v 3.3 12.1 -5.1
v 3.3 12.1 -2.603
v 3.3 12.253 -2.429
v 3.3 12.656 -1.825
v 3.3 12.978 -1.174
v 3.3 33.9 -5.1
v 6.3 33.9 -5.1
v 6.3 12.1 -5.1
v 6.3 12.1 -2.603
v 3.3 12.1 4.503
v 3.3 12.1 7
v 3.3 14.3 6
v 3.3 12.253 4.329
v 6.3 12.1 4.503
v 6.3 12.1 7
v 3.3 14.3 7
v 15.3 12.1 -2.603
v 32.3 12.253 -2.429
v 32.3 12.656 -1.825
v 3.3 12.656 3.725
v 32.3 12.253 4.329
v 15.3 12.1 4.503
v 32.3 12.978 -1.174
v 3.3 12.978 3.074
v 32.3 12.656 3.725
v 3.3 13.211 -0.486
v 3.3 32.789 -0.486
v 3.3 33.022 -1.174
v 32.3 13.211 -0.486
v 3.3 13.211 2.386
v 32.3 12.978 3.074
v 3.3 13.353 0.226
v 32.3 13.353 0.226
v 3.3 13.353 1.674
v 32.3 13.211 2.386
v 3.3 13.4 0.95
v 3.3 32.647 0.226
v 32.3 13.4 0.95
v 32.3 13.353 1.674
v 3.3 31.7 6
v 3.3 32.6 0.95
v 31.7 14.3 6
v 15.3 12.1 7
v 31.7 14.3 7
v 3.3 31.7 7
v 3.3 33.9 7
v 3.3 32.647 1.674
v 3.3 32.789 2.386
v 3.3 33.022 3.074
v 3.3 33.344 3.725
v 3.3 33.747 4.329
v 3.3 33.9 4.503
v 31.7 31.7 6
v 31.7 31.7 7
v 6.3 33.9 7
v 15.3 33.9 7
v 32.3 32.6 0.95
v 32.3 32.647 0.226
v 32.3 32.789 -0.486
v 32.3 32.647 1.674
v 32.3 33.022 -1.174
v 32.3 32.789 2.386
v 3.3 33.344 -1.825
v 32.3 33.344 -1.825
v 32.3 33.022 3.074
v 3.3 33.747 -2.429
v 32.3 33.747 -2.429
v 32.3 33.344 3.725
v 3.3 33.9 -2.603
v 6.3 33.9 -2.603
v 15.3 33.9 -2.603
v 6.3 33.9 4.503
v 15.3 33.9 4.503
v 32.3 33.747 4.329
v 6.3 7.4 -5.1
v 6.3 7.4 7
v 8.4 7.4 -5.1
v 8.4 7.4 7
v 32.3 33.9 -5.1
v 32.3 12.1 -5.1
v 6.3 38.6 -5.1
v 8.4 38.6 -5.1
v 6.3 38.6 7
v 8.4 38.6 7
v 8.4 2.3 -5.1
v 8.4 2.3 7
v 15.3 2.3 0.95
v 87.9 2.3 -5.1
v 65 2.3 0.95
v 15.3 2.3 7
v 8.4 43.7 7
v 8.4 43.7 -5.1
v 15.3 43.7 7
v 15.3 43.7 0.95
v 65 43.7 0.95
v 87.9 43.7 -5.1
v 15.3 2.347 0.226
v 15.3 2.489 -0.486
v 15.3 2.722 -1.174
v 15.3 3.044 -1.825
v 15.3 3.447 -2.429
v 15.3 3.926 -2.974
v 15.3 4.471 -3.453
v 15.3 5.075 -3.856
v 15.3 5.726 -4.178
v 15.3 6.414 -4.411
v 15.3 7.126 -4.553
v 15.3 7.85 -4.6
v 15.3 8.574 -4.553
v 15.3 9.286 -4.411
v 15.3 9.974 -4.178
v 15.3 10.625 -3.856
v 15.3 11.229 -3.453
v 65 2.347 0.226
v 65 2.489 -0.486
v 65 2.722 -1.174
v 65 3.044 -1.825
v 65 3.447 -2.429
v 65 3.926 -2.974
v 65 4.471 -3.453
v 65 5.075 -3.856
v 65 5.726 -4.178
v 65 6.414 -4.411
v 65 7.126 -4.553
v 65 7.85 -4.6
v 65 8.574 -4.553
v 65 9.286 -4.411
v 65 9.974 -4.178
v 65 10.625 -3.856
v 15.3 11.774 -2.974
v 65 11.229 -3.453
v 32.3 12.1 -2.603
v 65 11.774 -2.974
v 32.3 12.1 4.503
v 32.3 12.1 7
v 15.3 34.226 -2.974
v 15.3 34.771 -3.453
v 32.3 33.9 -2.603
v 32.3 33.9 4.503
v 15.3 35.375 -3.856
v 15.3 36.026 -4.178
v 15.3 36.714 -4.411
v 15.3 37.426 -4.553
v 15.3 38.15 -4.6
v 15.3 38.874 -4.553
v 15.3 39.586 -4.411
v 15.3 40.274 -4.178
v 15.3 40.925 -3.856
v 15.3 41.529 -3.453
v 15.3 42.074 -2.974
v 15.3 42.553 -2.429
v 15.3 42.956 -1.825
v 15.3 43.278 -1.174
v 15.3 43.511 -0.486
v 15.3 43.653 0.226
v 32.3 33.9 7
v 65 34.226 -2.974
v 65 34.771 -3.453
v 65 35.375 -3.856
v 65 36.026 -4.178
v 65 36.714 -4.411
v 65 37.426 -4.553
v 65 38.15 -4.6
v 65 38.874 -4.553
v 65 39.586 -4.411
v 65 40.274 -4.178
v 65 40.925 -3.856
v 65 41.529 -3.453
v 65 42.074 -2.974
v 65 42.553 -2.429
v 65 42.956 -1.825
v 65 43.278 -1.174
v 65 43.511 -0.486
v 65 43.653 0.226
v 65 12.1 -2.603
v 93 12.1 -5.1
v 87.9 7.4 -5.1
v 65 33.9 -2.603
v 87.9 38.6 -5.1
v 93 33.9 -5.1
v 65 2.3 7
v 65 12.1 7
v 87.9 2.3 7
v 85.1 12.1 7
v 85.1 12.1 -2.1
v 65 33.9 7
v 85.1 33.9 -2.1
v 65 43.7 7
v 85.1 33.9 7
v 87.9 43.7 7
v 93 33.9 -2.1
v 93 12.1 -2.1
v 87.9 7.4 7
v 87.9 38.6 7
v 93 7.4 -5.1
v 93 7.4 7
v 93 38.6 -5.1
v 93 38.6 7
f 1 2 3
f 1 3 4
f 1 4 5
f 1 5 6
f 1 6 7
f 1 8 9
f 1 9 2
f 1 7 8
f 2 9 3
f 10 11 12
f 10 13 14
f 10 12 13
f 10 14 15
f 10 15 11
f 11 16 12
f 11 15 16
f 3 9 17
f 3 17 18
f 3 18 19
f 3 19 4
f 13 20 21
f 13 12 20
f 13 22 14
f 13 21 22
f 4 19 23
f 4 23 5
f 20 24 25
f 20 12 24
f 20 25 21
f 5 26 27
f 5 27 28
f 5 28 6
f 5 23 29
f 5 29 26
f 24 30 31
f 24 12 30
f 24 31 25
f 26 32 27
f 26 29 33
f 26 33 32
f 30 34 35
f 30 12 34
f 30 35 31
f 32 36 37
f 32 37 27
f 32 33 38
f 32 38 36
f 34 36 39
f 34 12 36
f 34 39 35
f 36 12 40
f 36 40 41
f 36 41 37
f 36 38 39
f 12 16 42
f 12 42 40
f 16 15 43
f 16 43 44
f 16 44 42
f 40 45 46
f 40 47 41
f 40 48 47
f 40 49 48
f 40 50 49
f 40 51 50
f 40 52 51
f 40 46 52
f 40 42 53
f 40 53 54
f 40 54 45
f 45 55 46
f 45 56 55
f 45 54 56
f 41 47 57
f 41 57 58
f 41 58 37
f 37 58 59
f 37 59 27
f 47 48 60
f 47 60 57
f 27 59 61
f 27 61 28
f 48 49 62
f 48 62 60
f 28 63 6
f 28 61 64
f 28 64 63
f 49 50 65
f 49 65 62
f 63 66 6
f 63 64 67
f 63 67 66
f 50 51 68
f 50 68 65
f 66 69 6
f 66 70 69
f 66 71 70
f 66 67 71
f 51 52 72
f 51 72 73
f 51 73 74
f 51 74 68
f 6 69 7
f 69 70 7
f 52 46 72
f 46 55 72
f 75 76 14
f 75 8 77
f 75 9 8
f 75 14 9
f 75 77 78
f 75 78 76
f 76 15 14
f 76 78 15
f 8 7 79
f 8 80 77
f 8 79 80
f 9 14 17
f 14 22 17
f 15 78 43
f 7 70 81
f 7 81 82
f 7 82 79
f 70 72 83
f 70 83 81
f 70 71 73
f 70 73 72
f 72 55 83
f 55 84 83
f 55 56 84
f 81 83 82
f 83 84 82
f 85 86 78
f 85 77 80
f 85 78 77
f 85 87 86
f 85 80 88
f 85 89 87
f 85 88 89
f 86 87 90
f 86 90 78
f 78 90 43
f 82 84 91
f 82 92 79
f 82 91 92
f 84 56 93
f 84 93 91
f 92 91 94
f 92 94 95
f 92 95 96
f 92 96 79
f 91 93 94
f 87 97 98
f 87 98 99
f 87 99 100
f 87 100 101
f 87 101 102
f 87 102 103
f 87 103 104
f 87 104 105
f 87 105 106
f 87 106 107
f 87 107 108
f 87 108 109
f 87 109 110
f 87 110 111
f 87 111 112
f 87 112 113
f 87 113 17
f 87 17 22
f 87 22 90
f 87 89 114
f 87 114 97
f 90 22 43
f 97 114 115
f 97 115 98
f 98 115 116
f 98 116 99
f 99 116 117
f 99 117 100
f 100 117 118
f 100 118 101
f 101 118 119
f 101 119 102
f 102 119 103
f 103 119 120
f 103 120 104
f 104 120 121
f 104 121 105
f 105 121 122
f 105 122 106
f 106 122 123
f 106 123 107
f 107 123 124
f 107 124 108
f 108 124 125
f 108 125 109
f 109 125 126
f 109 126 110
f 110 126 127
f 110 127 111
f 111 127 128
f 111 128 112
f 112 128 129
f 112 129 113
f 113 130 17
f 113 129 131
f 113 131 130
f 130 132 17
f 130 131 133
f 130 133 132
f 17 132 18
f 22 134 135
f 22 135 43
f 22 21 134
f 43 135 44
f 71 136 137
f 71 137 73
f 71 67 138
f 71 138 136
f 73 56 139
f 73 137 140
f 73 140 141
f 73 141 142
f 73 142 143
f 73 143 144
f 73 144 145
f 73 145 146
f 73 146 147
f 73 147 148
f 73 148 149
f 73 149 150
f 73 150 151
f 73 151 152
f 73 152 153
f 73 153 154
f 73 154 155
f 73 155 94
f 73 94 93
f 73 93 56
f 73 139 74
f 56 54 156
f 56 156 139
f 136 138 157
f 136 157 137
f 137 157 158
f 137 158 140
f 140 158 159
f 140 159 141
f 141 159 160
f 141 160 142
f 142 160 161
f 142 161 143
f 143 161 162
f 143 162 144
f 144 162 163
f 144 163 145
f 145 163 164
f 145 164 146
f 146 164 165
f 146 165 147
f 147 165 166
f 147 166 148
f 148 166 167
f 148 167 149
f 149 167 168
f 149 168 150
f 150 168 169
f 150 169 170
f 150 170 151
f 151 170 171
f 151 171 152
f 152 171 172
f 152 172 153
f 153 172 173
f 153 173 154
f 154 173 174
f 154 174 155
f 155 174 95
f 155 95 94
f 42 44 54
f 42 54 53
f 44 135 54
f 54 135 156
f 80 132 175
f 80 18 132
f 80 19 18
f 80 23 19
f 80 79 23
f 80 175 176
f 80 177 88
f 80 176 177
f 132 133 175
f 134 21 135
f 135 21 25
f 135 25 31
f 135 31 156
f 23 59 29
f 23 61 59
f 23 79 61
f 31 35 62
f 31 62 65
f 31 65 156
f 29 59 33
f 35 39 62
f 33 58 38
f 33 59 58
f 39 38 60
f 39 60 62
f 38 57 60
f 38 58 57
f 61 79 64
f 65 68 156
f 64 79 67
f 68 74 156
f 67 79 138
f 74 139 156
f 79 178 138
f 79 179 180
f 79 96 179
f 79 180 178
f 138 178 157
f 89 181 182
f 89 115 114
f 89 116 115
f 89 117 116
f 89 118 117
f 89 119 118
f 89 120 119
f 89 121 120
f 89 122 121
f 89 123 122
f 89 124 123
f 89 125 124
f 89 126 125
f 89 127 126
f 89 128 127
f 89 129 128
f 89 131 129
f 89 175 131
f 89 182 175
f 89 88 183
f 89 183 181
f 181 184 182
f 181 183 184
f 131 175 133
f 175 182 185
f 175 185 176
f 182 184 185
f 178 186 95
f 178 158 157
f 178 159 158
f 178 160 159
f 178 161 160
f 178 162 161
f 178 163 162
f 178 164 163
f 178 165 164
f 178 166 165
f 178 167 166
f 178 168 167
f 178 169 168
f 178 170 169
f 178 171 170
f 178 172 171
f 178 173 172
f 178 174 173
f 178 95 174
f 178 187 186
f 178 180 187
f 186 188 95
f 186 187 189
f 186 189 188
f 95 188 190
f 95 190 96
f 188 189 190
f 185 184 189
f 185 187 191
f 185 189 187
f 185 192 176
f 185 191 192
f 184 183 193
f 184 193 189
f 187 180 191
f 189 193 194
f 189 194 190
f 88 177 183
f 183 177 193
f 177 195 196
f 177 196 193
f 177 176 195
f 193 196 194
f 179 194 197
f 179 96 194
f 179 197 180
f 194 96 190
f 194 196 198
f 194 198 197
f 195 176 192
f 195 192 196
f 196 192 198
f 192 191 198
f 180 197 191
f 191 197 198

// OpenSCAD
// Dilder Rev 2 "extended with joystick" — AAA CRADLE INSERT v2
//
// Based on the 04-24 v1 cradle insert, extended to fit the 94.5 mm wide
// enclosure (+3 mm on -X for TP4056 charge board).
//
// Changes from v1:
//   - enclosure_outer_width_along_x_axis_mm: 91.5 → 94.5
//   - Connecting block extended to 29 mm X / full plug height for TP4056
//   - 1 mm TP4056 indent on the connecting block's top face
//   - Concave battery-following arcs on the connecting block's ±Y faces
//   - +X display connector cutout (3 mm from bottom face)
//   - No USB-C port cutout (board accessible from the open Pico nest)
//
// Export:
//   openscad -o aaa-cradle-insert-v1.3mf aaa-cradle-insert-v1.scad

$fn = 48;

// ============================================================
// Match the cover / base shell parameters
// ============================================================
enclosure_outer_width_along_x_axis_mm          = 94.5;   // was 91.5 — +3 mm on -X side for TP4056
enclosure_outer_depth_along_y_axis_mm          = 46;
minus_x_end_wall_thickness_mm                  = 3.0;
plus_x_end_wall_thickness_mm                   = 1.2;
perimeter_long_side_wall_thickness_y_mm_base   = 2;
corner_pillar_square_side_length_mm            = 5;

// Cover cavity inner bounds (the space the plug fills)
cavity_inner_x_start_mm = minus_x_end_wall_thickness_mm;                         // = 3.0
cavity_inner_x_end_mm =
    enclosure_outer_width_along_x_axis_mm
      - plus_x_end_wall_thickness_mm;                                            // = 93.3
cavity_inner_y_start_mm = perimeter_long_side_wall_thickness_y_mm_base;          // = 2.0
cavity_inner_y_end_mm =
    enclosure_outer_depth_along_y_axis_mm
      - perimeter_long_side_wall_thickness_y_mm_base;                            // = 44.0

// Plug outer footprint = cavity − a tiny slide-in slop on every wall.
plug_wall_slop_mm                              = 0.3;
plug_x_start_mm = cavity_inner_x_start_mm + plug_wall_slop_mm;                   // = 3.3
plug_x_end_mm   = cavity_inner_x_end_mm   - plug_wall_slop_mm;                   // = 93.0
plug_y_start_mm = cavity_inner_y_start_mm + plug_wall_slop_mm;                   // = 2.3
plug_y_end_mm   = cavity_inner_y_end_mm   - plug_wall_slop_mm;                   // = 43.7

// ============================================================
// Plug Z
// ============================================================
face_plate_bottom_z_in_cover_local_mm          = 7;
aaa_cell_diameter_mm                           = 10.5;
aaa_cell_radial_slop_mm                        = 0.3;
aaa_bay_diameter_mm =
    aaa_cell_diameter_mm + 2 * aaa_cell_radial_slop_mm;  // = 11.1
aaa_bay_wall_above_and_below_mm                = 0.5;

plug_thickness_mm =
    aaa_bay_diameter_mm + 2 * aaa_bay_wall_above_and_below_mm;  // = 12.1
plug_top_z_mm = face_plate_bottom_z_in_cover_local_mm;          // = 7
plug_bottom_z_mm = plug_top_z_mm - plug_thickness_mm;           // = -5.1

// ============================================================
// AAA cells — 2 cells lying along X, stacked in Y
// ============================================================
aaa_cell_length_mm                             = 44.5;
aaa_cell_axial_slop_mm                         = 1.0;
aaa_cell_contact_space_per_end_mm              = 2.0;
aaa_bay_length_along_x_mm =
    aaa_cell_length_mm
      + 2 * aaa_cell_contact_space_per_end_mm
      + aaa_cell_axial_slop_mm;                          // = 49.5

plus_x_pillar_cutout_minus_x_edge_mm =
    (enclosure_outer_width_along_x_axis_mm
       - plus_x_end_wall_thickness_mm
       - corner_pillar_square_side_length_mm)
      - 0.4;                                              // = 87.9
aaa_bay_gap_from_pillar_cutout_mm              = 3.0;
aaa_bay_shift_toward_minus_x_mm               = 20;      // shift bays 20 mm toward origin
aaa_bay_plus_x_end_mm =
    plus_x_pillar_cutout_minus_x_edge_mm
      - aaa_bay_gap_from_pillar_cutout_mm
      - aaa_bay_shift_toward_minus_x_mm;                  // = 69.9
aaa_bay_minus_x_start_mm =
    aaa_bay_plus_x_end_mm - aaa_bay_length_along_x_mm;   // = 20.4

aaa_bay_minus_y_center_y_mm =
    plug_y_start_mm + aaa_bay_diameter_mm / 2;            // = 7.85
aaa_bay_plus_y_center_y_mm =
    plug_y_end_mm - aaa_bay_diameter_mm / 2;              // = 38.15
aaa_bay_center_z_mm =
    (plug_top_z_mm + plug_bottom_z_mm) / 2;               // ≈ 0.95

aaa_bay_top_open_z_bottom_mm                   = aaa_bay_center_z_mm;
aaa_bay_top_open_z_top_mm                      = plug_top_z_mm + 0.1;

// ============================================================
// FPC gap
// ============================================================
fpc_gap_width_along_x_mm                       = 3;

// ============================================================
// Pico nest
// ============================================================
pico_w_board_width_along_y_mm                  = 21.0;
pico_w_board_length_along_x_mm                 = 78;   // was 61 — nest extends to x≈87.3 for 55 mm past connecting block
print_fit_tolerance_slop_mm                    = 0.4;
pico_nest_width_along_y_mm =
    pico_w_board_width_along_y_mm + 2 * print_fit_tolerance_slop_mm;              // = 21.8
pico_nest_length_along_x_mm =
    pico_w_board_length_along_x_mm + 2 * print_fit_tolerance_slop_mm;             // = 61.8
pico_nest_depth_along_z_mm                     = plug_thickness_mm;

pico_nest_x_region_start_mm =
    plug_x_start_mm + fpc_gap_width_along_x_mm;                                   // = 6.3
pico_nest_x_region_end_mm   = aaa_bay_minus_x_start_mm;                           // = 35.4
pico_nest_x_start_mm =
    (pico_nest_x_region_start_mm + pico_nest_x_region_end_mm) / 2
      - pico_nest_length_along_x_mm / 2;
pico_nest_x_start_clamped_mm =
    max(pico_nest_x_start_mm, pico_nest_x_region_start_mm);
pico_nest_y_start_mm =
    enclosure_outer_depth_along_y_axis_mm / 2
      - pico_nest_width_along_y_mm / 2;                                           // = 12.1

// ============================================================
// -X middle inset — extended to 29 mm / full height for TP4056
// ============================================================
minus_x_inset_length_along_x_mm                = 29;
minus_x_inset_height_reduction_from_plug_mm    = 0;
minus_x_inset_depth_along_z_mm =
    plug_thickness_mm - minus_x_inset_height_reduction_from_plug_mm;
minus_x_inset_x_start_mm                       = plug_x_start_mm;
minus_x_inset_x_end_mm =
    minus_x_inset_x_start_mm + minus_x_inset_length_along_x_mm;
minus_x_inset_y_start_mm                       = pico_nest_y_start_mm;
minus_x_inset_y_end_mm =
    minus_x_inset_y_start_mm + pico_nest_width_along_y_mm;
minus_x_inset_z_top_mm                         = plug_top_z_mm;
minus_x_inset_z_bottom_mm =
    minus_x_inset_z_top_mm - minus_x_inset_depth_along_z_mm;

// ============================================================
// Connecting block — fills the -X inset, 29 mm X / full height
// ============================================================
connecting_block_length_along_x_mm             = 29;
connecting_block_height_reduction_from_plug_mm = 0;
connecting_block_height_along_z_mm =
    plug_thickness_mm - connecting_block_height_reduction_from_plug_mm;
connecting_block_x_start_mm                    = minus_x_inset_x_start_mm;
connecting_block_x_end_mm =
    connecting_block_x_start_mm + connecting_block_length_along_x_mm;
connecting_block_y_start_mm                    = minus_x_inset_y_start_mm;
connecting_block_y_end_mm                      = minus_x_inset_y_end_mm;
connecting_block_z_top_mm                      = plug_top_z_mm;
connecting_block_z_bottom_mm =
    connecting_block_z_top_mm - connecting_block_height_along_z_mm;

// ============================================================
// TP4056 indent — 1 mm recess on connecting block top face
// ============================================================
tp4056_board_length_along_x_mm                 = 28;
tp4056_board_width_along_y_mm                  = 17;
tp4056_indent_depth_z_mm                       = 1.0;
tp4056_indent_slop_per_edge_mm                 = 0.2;

tp4056_indent_x_start_mm                       = connecting_block_x_start_mm;
tp4056_indent_length_mm =
    tp4056_board_length_along_x_mm + 2 * tp4056_indent_slop_per_edge_mm;
tp4056_indent_width_mm =
    tp4056_board_width_along_y_mm + 2 * tp4056_indent_slop_per_edge_mm;
tp4056_indent_y_start_mm =
    (connecting_block_y_start_mm + connecting_block_y_end_mm) / 2
      - tp4056_indent_width_mm / 2;
tp4056_indent_z_bottom_mm =
    plug_top_z_mm - tp4056_indent_depth_z_mm;

// ============================================================
// +X display connector cutout — 3 mm from bottom face
// ============================================================
plus_x_cutout_depth_z_mm                       = 3;
plus_x_cutout_z_bottom_mm                      = plug_bottom_z_mm;
plus_x_cutout_z_top_mm =
    plug_bottom_z_mm + plus_x_cutout_depth_z_mm;
plus_x_cutout_x_start_mm                       = aaa_bay_plus_x_end_mm;
plus_x_cutout_x_end_mm                         = plug_x_end_mm;

// ============================================================
// Corner pillar cutouts
// ============================================================
corner_pillar_cutout_slop_mm                   = 0.4;
corner_pillar_cutout_xy_positions = [
    [minus_x_end_wall_thickness_mm,
     perimeter_long_side_wall_thickness_y_mm_base],
    [enclosure_outer_width_along_x_axis_mm
       - plus_x_end_wall_thickness_mm
       - corner_pillar_square_side_length_mm,
     perimeter_long_side_wall_thickness_y_mm_base],
    [minus_x_end_wall_thickness_mm,
     enclosure_outer_depth_along_y_axis_mm
       - perimeter_long_side_wall_thickness_y_mm_base
       - corner_pillar_square_side_length_mm],
    [enclosure_outer_width_along_x_axis_mm
       - plus_x_end_wall_thickness_mm
       - corner_pillar_square_side_length_mm,
     enclosure_outer_depth_along_y_axis_mm
       - perimeter_long_side_wall_thickness_y_mm_base
       - corner_pillar_square_side_length_mm],
];


// ========== AAA cradle insert ==========

module aaa_cradle_insert() {
    union() {
    difference() {
        // Main plug body
        translate([plug_x_start_mm, plug_y_start_mm, plug_bottom_z_mm])
            cube([plug_x_end_mm - plug_x_start_mm,
                  plug_y_end_mm - plug_y_start_mm,
                  plug_thickness_mm]);

        // Corner pillar cutouts (4)
        for (xy = corner_pillar_cutout_xy_positions) {
            translate([xy[0] - corner_pillar_cutout_slop_mm,
                       xy[1] - corner_pillar_cutout_slop_mm,
                       plug_bottom_z_mm - 0.1])
                cube([corner_pillar_square_side_length_mm + 2 * corner_pillar_cutout_slop_mm,
                      corner_pillar_square_side_length_mm + 2 * corner_pillar_cutout_slop_mm,
                      plug_thickness_mm + 0.2]);
        }

        // FPC gap
        translate([plug_x_start_mm - 0.1,
                   plug_y_start_mm - 0.1,
                   plug_bottom_z_mm - 0.1])
            cube([fpc_gap_width_along_x_mm + 0.1,
                  plug_y_end_mm - plug_y_start_mm + 0.2,
                  plug_thickness_mm + 0.2]);

        // AAA cell bays
        for (bay_y_center_mm = [aaa_bay_minus_y_center_y_mm,
                                aaa_bay_plus_y_center_y_mm]) {
            translate([aaa_bay_minus_x_start_mm - 0.1,
                       bay_y_center_mm,
                       aaa_bay_center_z_mm])
                rotate([0, 90, 0])
                    cylinder(h = aaa_bay_length_along_x_mm + 0.2,
                             d = aaa_bay_diameter_mm);

            bay_y_start_mm = bay_y_center_mm - aaa_bay_diameter_mm / 2;
            translate([aaa_bay_minus_x_start_mm - 0.1,
                       bay_y_start_mm,
                       aaa_bay_top_open_z_bottom_mm])
                cube([aaa_bay_length_along_x_mm + 0.2,
                      aaa_bay_diameter_mm,
                      aaa_bay_top_open_z_top_mm - aaa_bay_top_open_z_bottom_mm]);
        }

        // Pico nest
        translate([pico_nest_x_start_clamped_mm,
                   pico_nest_y_start_mm,
                   plug_bottom_z_mm - 0.1])
            cube([pico_nest_length_along_x_mm,
                  pico_nest_width_along_y_mm,
                  plug_thickness_mm + 0.2]);

        // -X middle inset
        translate([minus_x_inset_x_start_mm,
                   minus_x_inset_y_start_mm,
                   minus_x_inset_z_bottom_mm])
            cube([minus_x_inset_x_end_mm - minus_x_inset_x_start_mm,
                  minus_x_inset_y_end_mm - minus_x_inset_y_start_mm,
                  minus_x_inset_z_top_mm - minus_x_inset_z_bottom_mm + 0.1]);

        // +X display connector cutout — 3 mm from bottom face
        translate([plus_x_cutout_x_start_mm,
                   pico_nest_y_start_mm,
                   plus_x_cutout_z_bottom_mm - 0.1])
            cube([plus_x_cutout_x_end_mm - plus_x_cutout_x_start_mm + 0.1,
                  pico_nest_width_along_y_mm,
                  plus_x_cutout_depth_z_mm + 0.1]);
    }

    // Connecting block with battery arcs and TP4056 indent
    difference() {
        translate([connecting_block_x_start_mm,
                   connecting_block_y_start_mm,
                   connecting_block_z_bottom_mm])
            cube([connecting_block_x_end_mm - connecting_block_x_start_mm,
                  connecting_block_y_end_mm - connecting_block_y_start_mm,
                  connecting_block_z_top_mm - connecting_block_z_bottom_mm]);

        // Concave battery arcs on ±Y faces
        for (bay_y_center = [aaa_bay_minus_y_center_y_mm,
                             aaa_bay_plus_y_center_y_mm]) {
            translate([connecting_block_x_start_mm - 0.1,
                       bay_y_center,
                       aaa_bay_center_z_mm])
                rotate([0, 90, 0])
                    cylinder(h = connecting_block_x_end_mm
                                   - connecting_block_x_start_mm + 0.2,
                             r = aaa_bay_diameter_mm / 2);
        }

        // TP4056 indent
        translate([tp4056_indent_x_start_mm,
                   tp4056_indent_y_start_mm,
                   tp4056_indent_z_bottom_mm])
            cube([tp4056_indent_length_mm,
                  tp4056_indent_width_mm,
                  tp4056_indent_depth_z_mm + 0.1]);
    }
    }
}

aaa_cradle_insert();
